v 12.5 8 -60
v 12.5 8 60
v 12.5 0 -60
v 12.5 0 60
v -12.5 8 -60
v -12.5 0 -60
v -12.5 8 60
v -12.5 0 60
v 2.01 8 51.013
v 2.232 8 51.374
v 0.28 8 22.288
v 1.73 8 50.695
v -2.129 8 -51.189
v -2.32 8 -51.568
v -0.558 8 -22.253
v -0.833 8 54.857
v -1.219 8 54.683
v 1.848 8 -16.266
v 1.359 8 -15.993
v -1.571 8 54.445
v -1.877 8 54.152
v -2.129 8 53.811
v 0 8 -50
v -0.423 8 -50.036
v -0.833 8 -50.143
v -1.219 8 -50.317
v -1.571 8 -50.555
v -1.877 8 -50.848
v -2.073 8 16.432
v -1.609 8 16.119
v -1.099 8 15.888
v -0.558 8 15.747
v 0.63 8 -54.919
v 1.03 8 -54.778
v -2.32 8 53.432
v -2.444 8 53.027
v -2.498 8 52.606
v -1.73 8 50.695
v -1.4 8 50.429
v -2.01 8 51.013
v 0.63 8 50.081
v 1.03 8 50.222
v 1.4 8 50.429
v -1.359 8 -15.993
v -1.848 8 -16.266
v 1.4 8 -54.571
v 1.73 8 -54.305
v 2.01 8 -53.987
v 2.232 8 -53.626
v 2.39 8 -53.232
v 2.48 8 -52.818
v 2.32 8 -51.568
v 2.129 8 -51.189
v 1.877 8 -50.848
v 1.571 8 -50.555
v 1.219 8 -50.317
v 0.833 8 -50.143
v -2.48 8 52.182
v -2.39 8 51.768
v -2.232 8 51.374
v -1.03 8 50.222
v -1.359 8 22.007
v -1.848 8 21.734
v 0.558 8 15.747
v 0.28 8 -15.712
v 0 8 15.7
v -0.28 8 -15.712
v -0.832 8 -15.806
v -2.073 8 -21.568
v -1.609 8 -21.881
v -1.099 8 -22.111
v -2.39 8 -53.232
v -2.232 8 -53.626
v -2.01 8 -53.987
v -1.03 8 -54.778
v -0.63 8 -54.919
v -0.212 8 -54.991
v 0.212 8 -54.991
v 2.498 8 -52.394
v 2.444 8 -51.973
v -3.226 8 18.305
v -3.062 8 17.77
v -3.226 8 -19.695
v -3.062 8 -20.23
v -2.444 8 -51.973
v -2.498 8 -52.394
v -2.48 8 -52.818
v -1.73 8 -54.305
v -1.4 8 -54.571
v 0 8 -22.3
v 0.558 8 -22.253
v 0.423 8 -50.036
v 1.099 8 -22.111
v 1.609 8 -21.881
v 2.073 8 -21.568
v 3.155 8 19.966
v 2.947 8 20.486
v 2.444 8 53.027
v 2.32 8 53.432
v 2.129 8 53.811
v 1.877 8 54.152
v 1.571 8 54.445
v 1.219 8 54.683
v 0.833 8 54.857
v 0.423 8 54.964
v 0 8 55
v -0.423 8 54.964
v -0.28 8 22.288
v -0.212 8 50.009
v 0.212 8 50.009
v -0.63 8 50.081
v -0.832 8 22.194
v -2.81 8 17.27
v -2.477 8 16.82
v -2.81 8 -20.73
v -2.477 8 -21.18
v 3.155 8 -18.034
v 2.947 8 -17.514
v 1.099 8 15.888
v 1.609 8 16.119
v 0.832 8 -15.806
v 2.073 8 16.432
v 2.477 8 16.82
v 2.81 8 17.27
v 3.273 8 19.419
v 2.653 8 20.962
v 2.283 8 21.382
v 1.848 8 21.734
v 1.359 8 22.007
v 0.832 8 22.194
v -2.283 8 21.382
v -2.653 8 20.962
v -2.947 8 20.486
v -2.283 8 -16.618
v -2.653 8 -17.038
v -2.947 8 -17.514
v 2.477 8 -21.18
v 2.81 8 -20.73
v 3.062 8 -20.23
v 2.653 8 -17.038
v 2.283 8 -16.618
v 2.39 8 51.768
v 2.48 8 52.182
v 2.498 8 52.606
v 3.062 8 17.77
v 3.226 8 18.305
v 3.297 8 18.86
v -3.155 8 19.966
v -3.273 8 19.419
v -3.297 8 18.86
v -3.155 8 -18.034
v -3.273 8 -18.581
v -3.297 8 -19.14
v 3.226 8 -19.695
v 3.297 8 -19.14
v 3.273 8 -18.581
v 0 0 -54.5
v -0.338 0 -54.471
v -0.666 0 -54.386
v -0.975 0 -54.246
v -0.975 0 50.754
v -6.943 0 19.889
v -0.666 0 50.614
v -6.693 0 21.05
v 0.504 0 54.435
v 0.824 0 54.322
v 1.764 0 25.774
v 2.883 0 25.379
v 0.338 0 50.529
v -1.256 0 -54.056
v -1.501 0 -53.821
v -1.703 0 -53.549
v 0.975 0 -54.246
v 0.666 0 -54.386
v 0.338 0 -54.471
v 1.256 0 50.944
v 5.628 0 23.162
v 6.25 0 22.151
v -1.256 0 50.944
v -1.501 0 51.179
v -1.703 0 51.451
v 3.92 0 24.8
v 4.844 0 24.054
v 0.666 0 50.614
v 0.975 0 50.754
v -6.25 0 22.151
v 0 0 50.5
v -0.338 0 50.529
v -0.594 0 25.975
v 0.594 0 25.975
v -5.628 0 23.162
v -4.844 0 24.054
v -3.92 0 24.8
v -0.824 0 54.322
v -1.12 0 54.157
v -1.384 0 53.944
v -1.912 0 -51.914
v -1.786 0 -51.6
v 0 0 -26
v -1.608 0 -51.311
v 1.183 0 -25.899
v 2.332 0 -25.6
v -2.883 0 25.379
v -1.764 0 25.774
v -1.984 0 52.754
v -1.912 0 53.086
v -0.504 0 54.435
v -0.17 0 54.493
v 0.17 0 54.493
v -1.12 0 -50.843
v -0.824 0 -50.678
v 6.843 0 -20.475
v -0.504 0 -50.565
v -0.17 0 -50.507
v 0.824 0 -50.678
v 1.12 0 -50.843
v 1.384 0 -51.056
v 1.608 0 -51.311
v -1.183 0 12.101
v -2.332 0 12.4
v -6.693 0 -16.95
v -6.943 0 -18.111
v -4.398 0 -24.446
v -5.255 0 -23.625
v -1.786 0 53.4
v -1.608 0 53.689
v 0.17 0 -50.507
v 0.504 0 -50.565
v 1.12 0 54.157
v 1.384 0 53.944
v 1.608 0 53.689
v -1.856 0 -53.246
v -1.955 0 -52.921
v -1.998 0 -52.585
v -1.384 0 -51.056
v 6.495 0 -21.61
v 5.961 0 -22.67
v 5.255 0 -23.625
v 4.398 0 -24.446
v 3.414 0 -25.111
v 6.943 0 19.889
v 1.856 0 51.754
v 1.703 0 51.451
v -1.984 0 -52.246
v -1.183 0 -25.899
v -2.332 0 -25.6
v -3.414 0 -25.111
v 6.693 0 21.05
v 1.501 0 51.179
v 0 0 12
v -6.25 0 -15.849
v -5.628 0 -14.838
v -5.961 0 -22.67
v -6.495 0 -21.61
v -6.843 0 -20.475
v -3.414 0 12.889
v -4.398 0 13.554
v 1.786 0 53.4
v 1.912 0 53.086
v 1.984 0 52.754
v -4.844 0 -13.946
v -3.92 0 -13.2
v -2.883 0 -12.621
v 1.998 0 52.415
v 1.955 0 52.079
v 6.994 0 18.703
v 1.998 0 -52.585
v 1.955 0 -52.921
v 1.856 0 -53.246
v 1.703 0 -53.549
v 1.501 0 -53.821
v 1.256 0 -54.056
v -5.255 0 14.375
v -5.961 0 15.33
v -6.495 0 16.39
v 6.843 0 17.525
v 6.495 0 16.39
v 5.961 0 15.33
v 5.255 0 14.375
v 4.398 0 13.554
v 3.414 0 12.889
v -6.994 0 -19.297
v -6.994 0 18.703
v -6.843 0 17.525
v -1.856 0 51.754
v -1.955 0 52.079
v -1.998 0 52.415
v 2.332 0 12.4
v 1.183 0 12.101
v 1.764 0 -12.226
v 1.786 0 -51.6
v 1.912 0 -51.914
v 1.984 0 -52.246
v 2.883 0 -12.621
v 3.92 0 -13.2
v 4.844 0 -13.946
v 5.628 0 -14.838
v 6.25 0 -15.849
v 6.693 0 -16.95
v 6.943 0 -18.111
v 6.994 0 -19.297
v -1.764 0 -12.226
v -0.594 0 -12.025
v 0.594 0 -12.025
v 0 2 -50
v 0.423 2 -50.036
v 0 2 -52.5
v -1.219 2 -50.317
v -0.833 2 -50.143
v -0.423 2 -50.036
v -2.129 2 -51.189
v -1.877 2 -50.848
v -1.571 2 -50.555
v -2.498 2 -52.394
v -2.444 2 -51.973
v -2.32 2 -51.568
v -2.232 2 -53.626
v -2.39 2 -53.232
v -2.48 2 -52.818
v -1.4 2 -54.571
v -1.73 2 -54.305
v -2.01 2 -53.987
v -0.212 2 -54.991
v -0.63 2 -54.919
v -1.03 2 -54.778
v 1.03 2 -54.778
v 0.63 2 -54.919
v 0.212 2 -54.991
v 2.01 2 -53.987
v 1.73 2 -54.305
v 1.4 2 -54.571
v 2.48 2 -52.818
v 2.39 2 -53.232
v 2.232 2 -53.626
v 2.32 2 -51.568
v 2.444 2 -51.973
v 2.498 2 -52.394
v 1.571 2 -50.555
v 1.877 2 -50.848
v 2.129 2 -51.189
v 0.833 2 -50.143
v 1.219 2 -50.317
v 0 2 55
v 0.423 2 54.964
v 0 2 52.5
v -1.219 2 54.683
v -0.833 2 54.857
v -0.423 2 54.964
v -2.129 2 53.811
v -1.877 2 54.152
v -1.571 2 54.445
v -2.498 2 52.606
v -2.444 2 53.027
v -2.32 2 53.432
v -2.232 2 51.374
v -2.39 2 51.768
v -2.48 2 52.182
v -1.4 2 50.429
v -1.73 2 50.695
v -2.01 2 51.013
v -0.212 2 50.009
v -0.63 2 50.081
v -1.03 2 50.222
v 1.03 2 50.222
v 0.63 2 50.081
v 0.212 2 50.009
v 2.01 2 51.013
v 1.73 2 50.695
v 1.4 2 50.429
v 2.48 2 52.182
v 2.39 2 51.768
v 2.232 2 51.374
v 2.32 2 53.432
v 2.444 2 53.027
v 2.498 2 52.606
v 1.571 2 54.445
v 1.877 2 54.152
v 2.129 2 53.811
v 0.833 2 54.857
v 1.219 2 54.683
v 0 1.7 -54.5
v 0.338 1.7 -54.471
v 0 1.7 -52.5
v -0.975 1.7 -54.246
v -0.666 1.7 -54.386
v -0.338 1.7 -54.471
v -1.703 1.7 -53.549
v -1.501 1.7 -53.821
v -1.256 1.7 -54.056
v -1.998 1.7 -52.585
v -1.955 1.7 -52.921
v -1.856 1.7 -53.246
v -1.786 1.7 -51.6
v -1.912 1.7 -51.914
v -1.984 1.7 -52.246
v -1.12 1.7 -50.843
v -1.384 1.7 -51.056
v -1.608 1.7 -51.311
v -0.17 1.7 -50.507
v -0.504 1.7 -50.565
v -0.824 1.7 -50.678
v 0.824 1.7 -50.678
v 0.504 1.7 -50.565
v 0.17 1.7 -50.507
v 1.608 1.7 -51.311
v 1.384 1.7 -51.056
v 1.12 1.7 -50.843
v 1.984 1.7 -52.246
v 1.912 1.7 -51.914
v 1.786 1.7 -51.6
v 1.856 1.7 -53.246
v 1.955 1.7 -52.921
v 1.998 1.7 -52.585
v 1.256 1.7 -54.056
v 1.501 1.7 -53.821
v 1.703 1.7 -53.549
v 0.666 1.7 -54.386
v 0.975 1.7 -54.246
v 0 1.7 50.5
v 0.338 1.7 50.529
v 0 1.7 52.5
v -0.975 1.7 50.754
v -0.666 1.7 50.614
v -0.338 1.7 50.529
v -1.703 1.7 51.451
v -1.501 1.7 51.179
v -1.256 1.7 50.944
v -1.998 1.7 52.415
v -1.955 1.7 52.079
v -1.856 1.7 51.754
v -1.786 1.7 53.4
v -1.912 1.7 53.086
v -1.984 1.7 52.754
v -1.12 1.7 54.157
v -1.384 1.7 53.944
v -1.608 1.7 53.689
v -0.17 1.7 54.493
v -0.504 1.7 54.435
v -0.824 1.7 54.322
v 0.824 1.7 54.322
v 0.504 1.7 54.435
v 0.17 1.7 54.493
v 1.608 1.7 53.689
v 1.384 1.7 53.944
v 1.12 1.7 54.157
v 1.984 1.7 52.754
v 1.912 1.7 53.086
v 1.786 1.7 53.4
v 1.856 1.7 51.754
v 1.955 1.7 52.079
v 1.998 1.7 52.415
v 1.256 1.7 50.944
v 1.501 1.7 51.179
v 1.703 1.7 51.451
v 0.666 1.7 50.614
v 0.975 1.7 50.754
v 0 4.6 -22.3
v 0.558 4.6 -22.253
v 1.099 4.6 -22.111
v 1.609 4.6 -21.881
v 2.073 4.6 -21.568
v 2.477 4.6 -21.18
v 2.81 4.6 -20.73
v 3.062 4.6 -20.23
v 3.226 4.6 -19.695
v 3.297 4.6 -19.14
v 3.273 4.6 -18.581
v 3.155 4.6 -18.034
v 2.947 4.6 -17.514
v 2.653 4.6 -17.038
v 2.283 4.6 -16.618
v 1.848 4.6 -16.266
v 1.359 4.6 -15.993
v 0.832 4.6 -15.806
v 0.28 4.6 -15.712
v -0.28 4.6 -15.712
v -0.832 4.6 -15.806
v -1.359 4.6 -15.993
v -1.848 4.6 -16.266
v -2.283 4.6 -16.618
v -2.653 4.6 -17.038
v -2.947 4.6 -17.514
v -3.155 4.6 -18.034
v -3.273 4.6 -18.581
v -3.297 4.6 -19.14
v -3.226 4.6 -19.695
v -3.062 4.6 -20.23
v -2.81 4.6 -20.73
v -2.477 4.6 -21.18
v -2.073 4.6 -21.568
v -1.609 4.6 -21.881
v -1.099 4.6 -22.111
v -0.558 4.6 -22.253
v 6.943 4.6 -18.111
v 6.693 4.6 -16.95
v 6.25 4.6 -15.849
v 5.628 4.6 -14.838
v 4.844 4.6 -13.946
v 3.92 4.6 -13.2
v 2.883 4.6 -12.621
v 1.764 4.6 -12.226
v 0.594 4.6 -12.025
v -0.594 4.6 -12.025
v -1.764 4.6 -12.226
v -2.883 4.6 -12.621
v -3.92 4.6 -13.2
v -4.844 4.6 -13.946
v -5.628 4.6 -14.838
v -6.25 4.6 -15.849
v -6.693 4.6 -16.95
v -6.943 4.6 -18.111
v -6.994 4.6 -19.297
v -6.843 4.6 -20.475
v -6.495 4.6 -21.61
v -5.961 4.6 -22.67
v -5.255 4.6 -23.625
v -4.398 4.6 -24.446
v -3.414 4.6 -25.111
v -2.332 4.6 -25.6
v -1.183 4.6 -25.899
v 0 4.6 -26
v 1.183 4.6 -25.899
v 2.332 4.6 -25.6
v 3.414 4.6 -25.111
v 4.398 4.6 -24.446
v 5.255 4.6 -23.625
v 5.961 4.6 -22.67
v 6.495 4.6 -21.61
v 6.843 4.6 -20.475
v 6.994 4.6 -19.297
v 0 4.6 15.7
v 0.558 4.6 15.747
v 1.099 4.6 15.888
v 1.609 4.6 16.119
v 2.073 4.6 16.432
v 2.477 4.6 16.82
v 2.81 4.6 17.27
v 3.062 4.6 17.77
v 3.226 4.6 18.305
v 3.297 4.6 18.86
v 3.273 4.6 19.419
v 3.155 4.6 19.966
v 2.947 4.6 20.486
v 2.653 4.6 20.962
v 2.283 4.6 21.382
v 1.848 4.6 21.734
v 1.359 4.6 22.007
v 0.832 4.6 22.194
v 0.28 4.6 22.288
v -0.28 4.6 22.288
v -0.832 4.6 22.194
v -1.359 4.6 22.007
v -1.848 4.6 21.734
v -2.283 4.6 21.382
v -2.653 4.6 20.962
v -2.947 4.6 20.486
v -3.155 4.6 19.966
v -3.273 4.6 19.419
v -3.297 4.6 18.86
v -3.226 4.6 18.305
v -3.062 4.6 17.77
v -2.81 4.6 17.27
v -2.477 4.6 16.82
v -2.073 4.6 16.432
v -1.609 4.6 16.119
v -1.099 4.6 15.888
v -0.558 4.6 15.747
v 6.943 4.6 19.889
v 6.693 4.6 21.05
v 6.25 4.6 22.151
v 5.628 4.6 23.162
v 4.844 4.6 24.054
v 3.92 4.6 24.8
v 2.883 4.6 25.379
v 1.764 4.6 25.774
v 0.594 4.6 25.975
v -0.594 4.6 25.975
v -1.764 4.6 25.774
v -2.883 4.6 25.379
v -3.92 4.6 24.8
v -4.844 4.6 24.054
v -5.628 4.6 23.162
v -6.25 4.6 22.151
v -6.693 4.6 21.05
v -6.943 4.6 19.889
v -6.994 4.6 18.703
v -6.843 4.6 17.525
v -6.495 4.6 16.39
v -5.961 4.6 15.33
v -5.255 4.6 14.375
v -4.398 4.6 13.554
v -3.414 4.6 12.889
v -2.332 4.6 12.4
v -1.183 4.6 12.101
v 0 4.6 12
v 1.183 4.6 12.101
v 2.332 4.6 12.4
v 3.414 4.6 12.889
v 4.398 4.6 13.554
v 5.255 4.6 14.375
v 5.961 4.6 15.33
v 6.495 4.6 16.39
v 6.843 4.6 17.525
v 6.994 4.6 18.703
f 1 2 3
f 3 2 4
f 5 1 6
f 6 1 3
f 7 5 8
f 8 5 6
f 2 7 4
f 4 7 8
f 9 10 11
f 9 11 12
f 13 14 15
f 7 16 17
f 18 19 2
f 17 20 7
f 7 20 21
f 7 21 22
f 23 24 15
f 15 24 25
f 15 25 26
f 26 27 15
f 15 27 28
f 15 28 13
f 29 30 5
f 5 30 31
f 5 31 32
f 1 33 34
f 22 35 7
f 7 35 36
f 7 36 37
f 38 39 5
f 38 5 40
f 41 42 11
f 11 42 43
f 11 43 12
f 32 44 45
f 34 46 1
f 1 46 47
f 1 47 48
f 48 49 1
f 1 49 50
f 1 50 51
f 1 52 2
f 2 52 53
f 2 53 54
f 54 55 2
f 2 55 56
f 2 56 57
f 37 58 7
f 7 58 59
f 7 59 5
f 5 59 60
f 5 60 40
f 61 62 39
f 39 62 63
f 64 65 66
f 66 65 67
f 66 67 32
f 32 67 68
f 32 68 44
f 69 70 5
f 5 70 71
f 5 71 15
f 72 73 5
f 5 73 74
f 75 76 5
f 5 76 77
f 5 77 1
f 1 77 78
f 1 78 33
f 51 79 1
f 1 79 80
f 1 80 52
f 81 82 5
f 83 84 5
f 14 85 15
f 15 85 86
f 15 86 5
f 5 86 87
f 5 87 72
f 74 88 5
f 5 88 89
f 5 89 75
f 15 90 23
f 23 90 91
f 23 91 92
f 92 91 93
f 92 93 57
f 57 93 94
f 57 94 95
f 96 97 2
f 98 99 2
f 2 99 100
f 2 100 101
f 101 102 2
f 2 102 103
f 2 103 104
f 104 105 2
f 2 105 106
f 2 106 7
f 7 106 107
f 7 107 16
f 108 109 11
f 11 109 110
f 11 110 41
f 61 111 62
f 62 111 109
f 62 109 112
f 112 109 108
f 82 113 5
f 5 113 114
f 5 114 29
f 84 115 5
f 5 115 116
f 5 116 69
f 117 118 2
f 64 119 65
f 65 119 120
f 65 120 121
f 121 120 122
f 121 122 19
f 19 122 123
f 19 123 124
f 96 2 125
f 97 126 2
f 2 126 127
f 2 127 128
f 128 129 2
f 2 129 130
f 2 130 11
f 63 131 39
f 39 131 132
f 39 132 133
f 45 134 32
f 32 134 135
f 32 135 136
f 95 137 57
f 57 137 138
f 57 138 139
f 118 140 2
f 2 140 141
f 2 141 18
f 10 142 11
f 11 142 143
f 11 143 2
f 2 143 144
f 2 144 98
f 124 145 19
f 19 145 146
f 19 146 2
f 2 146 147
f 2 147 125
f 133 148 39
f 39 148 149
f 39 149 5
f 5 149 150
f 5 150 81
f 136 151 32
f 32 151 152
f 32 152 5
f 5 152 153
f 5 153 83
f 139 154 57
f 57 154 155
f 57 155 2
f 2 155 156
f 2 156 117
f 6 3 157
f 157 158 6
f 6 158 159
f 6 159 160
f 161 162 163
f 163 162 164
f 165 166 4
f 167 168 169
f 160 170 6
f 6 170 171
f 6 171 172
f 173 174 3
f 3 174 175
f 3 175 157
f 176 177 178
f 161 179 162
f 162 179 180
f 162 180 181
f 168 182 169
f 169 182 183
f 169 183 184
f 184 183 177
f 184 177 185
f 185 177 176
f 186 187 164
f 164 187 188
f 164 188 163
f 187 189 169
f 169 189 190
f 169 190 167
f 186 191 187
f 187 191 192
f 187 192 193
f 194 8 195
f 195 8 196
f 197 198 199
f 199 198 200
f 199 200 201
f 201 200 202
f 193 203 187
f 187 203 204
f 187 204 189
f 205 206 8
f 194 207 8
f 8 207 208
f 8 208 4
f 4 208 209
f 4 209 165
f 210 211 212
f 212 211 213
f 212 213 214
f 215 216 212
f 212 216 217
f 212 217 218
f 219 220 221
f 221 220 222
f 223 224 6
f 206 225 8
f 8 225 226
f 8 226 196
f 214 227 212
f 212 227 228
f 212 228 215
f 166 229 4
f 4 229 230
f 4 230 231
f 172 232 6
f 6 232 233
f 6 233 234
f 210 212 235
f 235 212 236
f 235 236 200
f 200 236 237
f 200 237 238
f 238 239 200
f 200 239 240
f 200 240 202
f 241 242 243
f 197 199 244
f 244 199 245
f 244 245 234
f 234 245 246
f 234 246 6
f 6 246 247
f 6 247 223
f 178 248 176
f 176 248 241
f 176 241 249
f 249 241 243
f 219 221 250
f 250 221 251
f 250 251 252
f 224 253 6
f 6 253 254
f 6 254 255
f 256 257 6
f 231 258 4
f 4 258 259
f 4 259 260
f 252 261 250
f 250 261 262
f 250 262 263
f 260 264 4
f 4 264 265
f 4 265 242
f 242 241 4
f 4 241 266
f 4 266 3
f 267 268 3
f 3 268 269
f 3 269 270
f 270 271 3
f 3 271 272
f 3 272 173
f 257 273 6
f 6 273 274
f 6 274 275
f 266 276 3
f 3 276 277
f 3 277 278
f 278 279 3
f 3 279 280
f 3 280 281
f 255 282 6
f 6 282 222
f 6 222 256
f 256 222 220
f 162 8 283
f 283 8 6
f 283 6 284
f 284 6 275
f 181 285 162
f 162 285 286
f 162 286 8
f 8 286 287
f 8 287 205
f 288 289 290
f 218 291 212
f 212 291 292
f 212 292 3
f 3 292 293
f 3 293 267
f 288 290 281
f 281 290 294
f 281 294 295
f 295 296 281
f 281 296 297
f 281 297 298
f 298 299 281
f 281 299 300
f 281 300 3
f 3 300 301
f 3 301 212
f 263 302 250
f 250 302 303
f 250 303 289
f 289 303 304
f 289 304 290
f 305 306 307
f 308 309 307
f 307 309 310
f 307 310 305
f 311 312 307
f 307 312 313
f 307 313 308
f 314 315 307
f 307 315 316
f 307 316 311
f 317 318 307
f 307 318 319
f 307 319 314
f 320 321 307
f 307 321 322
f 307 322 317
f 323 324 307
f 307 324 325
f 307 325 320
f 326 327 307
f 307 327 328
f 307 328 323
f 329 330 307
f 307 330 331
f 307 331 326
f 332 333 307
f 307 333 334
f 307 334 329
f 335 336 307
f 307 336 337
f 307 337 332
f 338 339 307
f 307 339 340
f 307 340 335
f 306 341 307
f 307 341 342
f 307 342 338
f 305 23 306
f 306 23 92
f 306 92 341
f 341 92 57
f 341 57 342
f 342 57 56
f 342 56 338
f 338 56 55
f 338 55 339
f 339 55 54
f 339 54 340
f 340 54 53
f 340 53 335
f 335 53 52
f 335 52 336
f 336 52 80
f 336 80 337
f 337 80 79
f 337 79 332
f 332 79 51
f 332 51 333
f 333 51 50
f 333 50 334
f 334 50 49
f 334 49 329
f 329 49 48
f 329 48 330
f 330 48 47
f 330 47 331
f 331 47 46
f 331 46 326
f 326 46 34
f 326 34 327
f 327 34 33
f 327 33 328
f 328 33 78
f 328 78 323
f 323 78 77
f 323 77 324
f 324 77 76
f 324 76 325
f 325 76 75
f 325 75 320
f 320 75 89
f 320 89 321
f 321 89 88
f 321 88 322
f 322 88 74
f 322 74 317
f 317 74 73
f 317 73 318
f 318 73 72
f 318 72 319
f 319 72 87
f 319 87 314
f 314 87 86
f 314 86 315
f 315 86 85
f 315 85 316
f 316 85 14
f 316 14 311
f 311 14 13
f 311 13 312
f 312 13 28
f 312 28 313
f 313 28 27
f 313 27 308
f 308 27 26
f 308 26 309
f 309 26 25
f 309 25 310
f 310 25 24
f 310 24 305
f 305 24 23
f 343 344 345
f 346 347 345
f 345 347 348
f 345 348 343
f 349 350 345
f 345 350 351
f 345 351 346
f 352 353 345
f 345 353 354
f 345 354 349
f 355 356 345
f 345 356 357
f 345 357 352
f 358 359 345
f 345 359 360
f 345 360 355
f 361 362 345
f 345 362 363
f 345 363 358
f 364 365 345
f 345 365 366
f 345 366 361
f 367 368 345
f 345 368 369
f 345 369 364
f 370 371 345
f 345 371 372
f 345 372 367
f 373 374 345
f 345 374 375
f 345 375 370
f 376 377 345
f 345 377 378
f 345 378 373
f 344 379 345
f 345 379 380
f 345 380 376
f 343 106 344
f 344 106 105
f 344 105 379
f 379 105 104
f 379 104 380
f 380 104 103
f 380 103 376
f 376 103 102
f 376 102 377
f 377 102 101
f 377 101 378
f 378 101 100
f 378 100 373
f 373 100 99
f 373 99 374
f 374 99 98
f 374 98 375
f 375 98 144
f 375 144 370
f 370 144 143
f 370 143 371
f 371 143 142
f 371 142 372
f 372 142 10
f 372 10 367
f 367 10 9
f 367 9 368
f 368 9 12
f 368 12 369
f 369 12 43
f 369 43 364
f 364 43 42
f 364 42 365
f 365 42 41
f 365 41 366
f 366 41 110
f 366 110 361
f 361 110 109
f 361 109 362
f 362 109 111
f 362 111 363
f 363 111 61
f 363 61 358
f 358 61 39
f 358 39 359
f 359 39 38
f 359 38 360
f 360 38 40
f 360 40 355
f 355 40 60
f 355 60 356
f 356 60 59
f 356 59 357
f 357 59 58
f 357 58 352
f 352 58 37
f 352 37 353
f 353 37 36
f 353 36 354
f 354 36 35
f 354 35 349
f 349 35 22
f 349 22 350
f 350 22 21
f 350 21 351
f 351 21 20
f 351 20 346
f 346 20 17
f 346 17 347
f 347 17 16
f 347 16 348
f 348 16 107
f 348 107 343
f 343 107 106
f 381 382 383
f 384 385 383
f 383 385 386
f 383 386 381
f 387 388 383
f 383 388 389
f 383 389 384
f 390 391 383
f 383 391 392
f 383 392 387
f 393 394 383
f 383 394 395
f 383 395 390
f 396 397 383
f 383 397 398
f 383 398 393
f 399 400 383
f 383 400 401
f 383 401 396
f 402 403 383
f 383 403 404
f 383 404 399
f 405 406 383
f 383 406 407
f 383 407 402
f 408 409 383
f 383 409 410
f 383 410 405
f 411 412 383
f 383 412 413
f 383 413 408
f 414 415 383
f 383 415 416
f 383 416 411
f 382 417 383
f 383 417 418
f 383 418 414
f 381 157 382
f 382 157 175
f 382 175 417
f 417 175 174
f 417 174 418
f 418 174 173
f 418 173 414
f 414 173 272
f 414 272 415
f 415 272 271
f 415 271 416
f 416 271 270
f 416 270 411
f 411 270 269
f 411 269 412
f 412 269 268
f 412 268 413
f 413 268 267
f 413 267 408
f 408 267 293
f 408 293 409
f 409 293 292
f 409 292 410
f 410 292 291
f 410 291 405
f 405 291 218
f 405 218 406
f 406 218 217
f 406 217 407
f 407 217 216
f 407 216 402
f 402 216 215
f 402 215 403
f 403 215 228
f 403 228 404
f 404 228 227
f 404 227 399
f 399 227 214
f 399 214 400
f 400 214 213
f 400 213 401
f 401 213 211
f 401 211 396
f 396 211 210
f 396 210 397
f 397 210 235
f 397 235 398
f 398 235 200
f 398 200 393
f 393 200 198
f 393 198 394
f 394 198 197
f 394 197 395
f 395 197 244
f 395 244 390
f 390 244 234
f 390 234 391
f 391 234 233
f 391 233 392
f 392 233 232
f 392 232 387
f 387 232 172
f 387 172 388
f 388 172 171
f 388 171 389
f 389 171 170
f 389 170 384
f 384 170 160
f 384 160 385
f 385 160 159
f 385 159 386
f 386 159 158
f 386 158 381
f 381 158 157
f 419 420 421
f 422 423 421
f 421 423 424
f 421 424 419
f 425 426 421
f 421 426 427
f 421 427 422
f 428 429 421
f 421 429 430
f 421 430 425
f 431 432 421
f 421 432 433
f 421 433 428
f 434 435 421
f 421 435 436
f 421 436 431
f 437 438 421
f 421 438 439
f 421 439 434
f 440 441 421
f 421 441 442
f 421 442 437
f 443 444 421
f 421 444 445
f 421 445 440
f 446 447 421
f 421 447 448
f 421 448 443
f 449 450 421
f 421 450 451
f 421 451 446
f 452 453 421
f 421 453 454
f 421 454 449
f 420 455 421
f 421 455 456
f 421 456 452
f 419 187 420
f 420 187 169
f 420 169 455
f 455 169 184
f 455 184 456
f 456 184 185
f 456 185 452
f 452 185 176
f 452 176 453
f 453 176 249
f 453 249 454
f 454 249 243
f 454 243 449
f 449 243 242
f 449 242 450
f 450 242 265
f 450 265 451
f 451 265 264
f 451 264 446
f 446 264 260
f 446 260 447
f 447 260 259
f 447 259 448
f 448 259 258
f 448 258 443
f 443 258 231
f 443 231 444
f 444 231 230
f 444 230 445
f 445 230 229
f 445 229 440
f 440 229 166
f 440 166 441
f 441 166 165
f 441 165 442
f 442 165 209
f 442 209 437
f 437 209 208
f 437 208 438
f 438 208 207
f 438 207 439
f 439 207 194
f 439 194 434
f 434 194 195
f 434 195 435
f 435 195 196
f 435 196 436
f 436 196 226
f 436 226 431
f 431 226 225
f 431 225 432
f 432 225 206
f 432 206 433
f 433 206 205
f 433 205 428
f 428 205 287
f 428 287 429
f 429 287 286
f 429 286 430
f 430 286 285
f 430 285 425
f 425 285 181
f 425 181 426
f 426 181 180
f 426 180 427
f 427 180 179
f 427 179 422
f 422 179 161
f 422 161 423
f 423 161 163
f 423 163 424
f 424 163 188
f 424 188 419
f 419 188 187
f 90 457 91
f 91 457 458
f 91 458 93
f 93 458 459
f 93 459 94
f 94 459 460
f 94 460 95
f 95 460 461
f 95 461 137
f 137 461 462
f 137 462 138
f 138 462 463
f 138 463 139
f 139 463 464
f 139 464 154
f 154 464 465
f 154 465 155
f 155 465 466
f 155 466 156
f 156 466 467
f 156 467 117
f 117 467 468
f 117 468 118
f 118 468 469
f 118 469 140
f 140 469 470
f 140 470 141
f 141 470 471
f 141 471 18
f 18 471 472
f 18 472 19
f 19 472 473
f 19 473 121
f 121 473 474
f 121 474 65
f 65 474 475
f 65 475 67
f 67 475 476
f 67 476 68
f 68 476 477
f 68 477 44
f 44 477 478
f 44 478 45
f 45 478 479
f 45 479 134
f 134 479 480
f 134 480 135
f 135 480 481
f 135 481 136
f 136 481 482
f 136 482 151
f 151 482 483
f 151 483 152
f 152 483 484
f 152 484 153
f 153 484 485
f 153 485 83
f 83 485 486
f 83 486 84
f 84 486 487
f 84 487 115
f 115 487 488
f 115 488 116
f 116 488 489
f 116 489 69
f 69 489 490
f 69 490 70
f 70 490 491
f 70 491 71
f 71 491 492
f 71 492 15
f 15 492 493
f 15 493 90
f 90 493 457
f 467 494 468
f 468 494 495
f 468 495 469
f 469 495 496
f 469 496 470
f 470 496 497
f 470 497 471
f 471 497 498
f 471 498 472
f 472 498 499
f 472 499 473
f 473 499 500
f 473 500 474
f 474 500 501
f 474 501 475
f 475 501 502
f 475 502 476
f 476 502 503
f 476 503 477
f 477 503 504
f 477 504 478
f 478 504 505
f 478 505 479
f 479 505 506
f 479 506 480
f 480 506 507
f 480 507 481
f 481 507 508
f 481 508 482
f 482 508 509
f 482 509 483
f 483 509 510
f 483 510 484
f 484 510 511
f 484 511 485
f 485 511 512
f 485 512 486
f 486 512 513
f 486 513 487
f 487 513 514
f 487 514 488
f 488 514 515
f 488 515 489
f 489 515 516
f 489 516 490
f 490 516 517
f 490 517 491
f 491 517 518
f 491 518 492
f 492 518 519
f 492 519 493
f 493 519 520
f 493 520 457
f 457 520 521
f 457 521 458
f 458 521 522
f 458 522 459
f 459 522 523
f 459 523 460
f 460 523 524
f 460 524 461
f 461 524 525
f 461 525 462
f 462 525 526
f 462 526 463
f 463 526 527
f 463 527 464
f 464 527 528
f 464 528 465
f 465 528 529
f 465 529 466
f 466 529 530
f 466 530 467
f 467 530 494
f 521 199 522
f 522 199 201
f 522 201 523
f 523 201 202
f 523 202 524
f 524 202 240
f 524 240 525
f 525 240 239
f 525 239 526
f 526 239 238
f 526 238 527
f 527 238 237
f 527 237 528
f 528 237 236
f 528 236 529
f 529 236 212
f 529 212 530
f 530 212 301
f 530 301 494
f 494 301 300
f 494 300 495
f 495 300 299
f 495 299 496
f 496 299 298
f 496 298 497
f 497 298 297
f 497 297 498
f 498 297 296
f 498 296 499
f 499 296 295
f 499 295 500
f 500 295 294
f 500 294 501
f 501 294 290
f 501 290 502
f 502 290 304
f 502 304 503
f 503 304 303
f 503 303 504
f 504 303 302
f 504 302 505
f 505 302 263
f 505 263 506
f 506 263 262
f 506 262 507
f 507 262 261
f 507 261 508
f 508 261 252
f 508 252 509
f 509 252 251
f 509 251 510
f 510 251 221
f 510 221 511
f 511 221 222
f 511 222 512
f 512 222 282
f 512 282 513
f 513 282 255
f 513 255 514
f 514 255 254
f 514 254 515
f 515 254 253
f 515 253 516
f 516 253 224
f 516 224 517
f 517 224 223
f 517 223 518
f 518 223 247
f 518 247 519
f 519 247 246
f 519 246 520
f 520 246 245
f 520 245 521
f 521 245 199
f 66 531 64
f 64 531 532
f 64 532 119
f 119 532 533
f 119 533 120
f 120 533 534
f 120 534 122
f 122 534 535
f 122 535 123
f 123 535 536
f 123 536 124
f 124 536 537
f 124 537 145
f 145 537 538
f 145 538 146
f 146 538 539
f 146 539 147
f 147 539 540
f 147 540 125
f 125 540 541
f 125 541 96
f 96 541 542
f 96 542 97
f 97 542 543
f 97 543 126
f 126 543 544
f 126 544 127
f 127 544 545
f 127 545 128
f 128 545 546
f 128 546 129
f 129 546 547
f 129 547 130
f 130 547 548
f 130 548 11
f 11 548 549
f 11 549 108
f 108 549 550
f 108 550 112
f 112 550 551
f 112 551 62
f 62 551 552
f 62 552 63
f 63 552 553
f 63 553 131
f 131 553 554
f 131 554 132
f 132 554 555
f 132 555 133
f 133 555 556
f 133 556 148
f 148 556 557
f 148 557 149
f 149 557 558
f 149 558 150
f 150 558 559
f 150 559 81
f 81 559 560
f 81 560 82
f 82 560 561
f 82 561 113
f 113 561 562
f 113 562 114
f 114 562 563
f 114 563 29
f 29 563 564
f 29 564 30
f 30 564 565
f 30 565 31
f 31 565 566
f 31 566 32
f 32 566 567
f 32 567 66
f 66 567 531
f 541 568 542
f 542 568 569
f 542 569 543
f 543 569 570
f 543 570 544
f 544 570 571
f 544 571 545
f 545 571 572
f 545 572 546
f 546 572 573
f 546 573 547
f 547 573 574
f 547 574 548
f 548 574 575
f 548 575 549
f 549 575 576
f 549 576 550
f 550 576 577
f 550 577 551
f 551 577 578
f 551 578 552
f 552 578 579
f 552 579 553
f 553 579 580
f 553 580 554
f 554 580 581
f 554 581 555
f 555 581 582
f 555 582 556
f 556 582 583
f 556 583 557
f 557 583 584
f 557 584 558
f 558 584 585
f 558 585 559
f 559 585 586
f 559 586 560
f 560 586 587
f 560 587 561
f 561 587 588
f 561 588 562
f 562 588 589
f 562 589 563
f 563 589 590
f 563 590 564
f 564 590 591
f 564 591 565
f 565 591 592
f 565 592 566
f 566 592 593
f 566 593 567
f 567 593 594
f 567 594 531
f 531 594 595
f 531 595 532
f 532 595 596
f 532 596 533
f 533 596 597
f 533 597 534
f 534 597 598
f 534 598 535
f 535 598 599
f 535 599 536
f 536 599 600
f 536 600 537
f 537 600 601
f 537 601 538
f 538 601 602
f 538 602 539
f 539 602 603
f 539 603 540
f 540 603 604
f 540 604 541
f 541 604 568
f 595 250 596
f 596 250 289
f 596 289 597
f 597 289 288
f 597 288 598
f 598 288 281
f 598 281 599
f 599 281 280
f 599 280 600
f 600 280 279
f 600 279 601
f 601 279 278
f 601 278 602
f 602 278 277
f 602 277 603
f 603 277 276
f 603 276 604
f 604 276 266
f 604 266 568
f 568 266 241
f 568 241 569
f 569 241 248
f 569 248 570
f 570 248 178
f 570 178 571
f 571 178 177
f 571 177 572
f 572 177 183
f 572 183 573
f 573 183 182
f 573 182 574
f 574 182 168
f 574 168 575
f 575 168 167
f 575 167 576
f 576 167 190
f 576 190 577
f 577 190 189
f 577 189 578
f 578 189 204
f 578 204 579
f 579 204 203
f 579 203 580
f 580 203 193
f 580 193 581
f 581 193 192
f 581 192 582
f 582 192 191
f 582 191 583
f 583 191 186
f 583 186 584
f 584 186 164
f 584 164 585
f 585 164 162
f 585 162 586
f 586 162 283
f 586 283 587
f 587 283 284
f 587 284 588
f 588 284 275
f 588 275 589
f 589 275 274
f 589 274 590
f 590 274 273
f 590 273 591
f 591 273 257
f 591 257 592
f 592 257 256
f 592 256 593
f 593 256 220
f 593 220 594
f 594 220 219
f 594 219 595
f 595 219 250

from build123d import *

# Parameters (mm, degrees)
SKICA1_W                                          = 25
SKICA1_H                                          = 120
P_IDAT_VYSUNUT_M1_DEPTH                           = 8
D_RY_PRO_KOL_K_VELIKOST_MM2_D                     = 5
D_RY_PRO_KOL_K_VELIKOST_MM2_DEPTH                 = 6
D_RY_PRO_KOL_K_VELIKOST_MM2_2_D                   = 4
D_RY_PRO_KOL_K_VELIKOST_MM2_2_DEPTH               = 1.7
V_LCOV_ZAHLOUBEN_PRO_M6_ROUBY_S_V_LCO_D           = 6.6
V_LCOV_ZAHLOUBEN_PRO_M6_ROUBY_S_V_LCO_CBORE_D     = 14
V_LCOV_ZAHLOUBEN_PRO_M6_ROUBY_S_V_LCO_CBORE_DEPTH = 4.6


with BuildPart() as part:
    # Skica1 → Přidat vysunutím1 (new body)
    with BuildSketch(Plane(origin=(0, 0, 0), x_dir=(1, 0, 0), z_dir=(0, 1, 0))):
        Rectangle(SKICA1_W, SKICA1_H)
    extrude(amount=P_IDAT_VYSUNUT_M1_DEPTH)

    # D_ry pro kol_k_ velikost mm2
    with Locations(Plane(origin=(0, 8, 0), x_dir=(1, 0, 0), z_dir=(0, 1, 0))):
        with Locations((0, -52.5), (0, 52.5)):
            Hole(D_RY_PRO_KOL_K_VELIKOST_MM2_D / 2, depth=D_RY_PRO_KOL_K_VELIKOST_MM2_DEPTH)

    # D_ry pro kol_k_ velikost mm2 2
    with Locations(Plane(origin=(0, 0, 0), x_dir=(-1, 0, 0), z_dir=(0, -1, 0))):
        with Locations((0, -52.5), (0, 52.5)):
            Hole(D_RY_PRO_KOL_K_VELIKOST_MM2_2_D / 2, depth=D_RY_PRO_KOL_K_VELIKOST_MM2_2_DEPTH)

    # Válcové zahloubení pro M6 šrouby s válcovou hlavou zaoblenou1 (through all)
    with Locations(Plane(origin=(0, 0, 0), x_dir=(-1, 0, 0), z_dir=(0, -1, 0))):
        with Locations((0, -19), (0, 19)):
            CounterBoreHole(V_LCOV_ZAHLOUBEN_PRO_M6_ROUBY_S_V_LCO_D / 2, V_LCOV_ZAHLOUBEN_PRO_M6_ROUBY_S_V_LCO_CBORE_D / 2, V_LCOV_ZAHLOUBEN_PRO_M6_ROUBY_S_V_LCO_CBORE_DEPTH)


solid = part.part
